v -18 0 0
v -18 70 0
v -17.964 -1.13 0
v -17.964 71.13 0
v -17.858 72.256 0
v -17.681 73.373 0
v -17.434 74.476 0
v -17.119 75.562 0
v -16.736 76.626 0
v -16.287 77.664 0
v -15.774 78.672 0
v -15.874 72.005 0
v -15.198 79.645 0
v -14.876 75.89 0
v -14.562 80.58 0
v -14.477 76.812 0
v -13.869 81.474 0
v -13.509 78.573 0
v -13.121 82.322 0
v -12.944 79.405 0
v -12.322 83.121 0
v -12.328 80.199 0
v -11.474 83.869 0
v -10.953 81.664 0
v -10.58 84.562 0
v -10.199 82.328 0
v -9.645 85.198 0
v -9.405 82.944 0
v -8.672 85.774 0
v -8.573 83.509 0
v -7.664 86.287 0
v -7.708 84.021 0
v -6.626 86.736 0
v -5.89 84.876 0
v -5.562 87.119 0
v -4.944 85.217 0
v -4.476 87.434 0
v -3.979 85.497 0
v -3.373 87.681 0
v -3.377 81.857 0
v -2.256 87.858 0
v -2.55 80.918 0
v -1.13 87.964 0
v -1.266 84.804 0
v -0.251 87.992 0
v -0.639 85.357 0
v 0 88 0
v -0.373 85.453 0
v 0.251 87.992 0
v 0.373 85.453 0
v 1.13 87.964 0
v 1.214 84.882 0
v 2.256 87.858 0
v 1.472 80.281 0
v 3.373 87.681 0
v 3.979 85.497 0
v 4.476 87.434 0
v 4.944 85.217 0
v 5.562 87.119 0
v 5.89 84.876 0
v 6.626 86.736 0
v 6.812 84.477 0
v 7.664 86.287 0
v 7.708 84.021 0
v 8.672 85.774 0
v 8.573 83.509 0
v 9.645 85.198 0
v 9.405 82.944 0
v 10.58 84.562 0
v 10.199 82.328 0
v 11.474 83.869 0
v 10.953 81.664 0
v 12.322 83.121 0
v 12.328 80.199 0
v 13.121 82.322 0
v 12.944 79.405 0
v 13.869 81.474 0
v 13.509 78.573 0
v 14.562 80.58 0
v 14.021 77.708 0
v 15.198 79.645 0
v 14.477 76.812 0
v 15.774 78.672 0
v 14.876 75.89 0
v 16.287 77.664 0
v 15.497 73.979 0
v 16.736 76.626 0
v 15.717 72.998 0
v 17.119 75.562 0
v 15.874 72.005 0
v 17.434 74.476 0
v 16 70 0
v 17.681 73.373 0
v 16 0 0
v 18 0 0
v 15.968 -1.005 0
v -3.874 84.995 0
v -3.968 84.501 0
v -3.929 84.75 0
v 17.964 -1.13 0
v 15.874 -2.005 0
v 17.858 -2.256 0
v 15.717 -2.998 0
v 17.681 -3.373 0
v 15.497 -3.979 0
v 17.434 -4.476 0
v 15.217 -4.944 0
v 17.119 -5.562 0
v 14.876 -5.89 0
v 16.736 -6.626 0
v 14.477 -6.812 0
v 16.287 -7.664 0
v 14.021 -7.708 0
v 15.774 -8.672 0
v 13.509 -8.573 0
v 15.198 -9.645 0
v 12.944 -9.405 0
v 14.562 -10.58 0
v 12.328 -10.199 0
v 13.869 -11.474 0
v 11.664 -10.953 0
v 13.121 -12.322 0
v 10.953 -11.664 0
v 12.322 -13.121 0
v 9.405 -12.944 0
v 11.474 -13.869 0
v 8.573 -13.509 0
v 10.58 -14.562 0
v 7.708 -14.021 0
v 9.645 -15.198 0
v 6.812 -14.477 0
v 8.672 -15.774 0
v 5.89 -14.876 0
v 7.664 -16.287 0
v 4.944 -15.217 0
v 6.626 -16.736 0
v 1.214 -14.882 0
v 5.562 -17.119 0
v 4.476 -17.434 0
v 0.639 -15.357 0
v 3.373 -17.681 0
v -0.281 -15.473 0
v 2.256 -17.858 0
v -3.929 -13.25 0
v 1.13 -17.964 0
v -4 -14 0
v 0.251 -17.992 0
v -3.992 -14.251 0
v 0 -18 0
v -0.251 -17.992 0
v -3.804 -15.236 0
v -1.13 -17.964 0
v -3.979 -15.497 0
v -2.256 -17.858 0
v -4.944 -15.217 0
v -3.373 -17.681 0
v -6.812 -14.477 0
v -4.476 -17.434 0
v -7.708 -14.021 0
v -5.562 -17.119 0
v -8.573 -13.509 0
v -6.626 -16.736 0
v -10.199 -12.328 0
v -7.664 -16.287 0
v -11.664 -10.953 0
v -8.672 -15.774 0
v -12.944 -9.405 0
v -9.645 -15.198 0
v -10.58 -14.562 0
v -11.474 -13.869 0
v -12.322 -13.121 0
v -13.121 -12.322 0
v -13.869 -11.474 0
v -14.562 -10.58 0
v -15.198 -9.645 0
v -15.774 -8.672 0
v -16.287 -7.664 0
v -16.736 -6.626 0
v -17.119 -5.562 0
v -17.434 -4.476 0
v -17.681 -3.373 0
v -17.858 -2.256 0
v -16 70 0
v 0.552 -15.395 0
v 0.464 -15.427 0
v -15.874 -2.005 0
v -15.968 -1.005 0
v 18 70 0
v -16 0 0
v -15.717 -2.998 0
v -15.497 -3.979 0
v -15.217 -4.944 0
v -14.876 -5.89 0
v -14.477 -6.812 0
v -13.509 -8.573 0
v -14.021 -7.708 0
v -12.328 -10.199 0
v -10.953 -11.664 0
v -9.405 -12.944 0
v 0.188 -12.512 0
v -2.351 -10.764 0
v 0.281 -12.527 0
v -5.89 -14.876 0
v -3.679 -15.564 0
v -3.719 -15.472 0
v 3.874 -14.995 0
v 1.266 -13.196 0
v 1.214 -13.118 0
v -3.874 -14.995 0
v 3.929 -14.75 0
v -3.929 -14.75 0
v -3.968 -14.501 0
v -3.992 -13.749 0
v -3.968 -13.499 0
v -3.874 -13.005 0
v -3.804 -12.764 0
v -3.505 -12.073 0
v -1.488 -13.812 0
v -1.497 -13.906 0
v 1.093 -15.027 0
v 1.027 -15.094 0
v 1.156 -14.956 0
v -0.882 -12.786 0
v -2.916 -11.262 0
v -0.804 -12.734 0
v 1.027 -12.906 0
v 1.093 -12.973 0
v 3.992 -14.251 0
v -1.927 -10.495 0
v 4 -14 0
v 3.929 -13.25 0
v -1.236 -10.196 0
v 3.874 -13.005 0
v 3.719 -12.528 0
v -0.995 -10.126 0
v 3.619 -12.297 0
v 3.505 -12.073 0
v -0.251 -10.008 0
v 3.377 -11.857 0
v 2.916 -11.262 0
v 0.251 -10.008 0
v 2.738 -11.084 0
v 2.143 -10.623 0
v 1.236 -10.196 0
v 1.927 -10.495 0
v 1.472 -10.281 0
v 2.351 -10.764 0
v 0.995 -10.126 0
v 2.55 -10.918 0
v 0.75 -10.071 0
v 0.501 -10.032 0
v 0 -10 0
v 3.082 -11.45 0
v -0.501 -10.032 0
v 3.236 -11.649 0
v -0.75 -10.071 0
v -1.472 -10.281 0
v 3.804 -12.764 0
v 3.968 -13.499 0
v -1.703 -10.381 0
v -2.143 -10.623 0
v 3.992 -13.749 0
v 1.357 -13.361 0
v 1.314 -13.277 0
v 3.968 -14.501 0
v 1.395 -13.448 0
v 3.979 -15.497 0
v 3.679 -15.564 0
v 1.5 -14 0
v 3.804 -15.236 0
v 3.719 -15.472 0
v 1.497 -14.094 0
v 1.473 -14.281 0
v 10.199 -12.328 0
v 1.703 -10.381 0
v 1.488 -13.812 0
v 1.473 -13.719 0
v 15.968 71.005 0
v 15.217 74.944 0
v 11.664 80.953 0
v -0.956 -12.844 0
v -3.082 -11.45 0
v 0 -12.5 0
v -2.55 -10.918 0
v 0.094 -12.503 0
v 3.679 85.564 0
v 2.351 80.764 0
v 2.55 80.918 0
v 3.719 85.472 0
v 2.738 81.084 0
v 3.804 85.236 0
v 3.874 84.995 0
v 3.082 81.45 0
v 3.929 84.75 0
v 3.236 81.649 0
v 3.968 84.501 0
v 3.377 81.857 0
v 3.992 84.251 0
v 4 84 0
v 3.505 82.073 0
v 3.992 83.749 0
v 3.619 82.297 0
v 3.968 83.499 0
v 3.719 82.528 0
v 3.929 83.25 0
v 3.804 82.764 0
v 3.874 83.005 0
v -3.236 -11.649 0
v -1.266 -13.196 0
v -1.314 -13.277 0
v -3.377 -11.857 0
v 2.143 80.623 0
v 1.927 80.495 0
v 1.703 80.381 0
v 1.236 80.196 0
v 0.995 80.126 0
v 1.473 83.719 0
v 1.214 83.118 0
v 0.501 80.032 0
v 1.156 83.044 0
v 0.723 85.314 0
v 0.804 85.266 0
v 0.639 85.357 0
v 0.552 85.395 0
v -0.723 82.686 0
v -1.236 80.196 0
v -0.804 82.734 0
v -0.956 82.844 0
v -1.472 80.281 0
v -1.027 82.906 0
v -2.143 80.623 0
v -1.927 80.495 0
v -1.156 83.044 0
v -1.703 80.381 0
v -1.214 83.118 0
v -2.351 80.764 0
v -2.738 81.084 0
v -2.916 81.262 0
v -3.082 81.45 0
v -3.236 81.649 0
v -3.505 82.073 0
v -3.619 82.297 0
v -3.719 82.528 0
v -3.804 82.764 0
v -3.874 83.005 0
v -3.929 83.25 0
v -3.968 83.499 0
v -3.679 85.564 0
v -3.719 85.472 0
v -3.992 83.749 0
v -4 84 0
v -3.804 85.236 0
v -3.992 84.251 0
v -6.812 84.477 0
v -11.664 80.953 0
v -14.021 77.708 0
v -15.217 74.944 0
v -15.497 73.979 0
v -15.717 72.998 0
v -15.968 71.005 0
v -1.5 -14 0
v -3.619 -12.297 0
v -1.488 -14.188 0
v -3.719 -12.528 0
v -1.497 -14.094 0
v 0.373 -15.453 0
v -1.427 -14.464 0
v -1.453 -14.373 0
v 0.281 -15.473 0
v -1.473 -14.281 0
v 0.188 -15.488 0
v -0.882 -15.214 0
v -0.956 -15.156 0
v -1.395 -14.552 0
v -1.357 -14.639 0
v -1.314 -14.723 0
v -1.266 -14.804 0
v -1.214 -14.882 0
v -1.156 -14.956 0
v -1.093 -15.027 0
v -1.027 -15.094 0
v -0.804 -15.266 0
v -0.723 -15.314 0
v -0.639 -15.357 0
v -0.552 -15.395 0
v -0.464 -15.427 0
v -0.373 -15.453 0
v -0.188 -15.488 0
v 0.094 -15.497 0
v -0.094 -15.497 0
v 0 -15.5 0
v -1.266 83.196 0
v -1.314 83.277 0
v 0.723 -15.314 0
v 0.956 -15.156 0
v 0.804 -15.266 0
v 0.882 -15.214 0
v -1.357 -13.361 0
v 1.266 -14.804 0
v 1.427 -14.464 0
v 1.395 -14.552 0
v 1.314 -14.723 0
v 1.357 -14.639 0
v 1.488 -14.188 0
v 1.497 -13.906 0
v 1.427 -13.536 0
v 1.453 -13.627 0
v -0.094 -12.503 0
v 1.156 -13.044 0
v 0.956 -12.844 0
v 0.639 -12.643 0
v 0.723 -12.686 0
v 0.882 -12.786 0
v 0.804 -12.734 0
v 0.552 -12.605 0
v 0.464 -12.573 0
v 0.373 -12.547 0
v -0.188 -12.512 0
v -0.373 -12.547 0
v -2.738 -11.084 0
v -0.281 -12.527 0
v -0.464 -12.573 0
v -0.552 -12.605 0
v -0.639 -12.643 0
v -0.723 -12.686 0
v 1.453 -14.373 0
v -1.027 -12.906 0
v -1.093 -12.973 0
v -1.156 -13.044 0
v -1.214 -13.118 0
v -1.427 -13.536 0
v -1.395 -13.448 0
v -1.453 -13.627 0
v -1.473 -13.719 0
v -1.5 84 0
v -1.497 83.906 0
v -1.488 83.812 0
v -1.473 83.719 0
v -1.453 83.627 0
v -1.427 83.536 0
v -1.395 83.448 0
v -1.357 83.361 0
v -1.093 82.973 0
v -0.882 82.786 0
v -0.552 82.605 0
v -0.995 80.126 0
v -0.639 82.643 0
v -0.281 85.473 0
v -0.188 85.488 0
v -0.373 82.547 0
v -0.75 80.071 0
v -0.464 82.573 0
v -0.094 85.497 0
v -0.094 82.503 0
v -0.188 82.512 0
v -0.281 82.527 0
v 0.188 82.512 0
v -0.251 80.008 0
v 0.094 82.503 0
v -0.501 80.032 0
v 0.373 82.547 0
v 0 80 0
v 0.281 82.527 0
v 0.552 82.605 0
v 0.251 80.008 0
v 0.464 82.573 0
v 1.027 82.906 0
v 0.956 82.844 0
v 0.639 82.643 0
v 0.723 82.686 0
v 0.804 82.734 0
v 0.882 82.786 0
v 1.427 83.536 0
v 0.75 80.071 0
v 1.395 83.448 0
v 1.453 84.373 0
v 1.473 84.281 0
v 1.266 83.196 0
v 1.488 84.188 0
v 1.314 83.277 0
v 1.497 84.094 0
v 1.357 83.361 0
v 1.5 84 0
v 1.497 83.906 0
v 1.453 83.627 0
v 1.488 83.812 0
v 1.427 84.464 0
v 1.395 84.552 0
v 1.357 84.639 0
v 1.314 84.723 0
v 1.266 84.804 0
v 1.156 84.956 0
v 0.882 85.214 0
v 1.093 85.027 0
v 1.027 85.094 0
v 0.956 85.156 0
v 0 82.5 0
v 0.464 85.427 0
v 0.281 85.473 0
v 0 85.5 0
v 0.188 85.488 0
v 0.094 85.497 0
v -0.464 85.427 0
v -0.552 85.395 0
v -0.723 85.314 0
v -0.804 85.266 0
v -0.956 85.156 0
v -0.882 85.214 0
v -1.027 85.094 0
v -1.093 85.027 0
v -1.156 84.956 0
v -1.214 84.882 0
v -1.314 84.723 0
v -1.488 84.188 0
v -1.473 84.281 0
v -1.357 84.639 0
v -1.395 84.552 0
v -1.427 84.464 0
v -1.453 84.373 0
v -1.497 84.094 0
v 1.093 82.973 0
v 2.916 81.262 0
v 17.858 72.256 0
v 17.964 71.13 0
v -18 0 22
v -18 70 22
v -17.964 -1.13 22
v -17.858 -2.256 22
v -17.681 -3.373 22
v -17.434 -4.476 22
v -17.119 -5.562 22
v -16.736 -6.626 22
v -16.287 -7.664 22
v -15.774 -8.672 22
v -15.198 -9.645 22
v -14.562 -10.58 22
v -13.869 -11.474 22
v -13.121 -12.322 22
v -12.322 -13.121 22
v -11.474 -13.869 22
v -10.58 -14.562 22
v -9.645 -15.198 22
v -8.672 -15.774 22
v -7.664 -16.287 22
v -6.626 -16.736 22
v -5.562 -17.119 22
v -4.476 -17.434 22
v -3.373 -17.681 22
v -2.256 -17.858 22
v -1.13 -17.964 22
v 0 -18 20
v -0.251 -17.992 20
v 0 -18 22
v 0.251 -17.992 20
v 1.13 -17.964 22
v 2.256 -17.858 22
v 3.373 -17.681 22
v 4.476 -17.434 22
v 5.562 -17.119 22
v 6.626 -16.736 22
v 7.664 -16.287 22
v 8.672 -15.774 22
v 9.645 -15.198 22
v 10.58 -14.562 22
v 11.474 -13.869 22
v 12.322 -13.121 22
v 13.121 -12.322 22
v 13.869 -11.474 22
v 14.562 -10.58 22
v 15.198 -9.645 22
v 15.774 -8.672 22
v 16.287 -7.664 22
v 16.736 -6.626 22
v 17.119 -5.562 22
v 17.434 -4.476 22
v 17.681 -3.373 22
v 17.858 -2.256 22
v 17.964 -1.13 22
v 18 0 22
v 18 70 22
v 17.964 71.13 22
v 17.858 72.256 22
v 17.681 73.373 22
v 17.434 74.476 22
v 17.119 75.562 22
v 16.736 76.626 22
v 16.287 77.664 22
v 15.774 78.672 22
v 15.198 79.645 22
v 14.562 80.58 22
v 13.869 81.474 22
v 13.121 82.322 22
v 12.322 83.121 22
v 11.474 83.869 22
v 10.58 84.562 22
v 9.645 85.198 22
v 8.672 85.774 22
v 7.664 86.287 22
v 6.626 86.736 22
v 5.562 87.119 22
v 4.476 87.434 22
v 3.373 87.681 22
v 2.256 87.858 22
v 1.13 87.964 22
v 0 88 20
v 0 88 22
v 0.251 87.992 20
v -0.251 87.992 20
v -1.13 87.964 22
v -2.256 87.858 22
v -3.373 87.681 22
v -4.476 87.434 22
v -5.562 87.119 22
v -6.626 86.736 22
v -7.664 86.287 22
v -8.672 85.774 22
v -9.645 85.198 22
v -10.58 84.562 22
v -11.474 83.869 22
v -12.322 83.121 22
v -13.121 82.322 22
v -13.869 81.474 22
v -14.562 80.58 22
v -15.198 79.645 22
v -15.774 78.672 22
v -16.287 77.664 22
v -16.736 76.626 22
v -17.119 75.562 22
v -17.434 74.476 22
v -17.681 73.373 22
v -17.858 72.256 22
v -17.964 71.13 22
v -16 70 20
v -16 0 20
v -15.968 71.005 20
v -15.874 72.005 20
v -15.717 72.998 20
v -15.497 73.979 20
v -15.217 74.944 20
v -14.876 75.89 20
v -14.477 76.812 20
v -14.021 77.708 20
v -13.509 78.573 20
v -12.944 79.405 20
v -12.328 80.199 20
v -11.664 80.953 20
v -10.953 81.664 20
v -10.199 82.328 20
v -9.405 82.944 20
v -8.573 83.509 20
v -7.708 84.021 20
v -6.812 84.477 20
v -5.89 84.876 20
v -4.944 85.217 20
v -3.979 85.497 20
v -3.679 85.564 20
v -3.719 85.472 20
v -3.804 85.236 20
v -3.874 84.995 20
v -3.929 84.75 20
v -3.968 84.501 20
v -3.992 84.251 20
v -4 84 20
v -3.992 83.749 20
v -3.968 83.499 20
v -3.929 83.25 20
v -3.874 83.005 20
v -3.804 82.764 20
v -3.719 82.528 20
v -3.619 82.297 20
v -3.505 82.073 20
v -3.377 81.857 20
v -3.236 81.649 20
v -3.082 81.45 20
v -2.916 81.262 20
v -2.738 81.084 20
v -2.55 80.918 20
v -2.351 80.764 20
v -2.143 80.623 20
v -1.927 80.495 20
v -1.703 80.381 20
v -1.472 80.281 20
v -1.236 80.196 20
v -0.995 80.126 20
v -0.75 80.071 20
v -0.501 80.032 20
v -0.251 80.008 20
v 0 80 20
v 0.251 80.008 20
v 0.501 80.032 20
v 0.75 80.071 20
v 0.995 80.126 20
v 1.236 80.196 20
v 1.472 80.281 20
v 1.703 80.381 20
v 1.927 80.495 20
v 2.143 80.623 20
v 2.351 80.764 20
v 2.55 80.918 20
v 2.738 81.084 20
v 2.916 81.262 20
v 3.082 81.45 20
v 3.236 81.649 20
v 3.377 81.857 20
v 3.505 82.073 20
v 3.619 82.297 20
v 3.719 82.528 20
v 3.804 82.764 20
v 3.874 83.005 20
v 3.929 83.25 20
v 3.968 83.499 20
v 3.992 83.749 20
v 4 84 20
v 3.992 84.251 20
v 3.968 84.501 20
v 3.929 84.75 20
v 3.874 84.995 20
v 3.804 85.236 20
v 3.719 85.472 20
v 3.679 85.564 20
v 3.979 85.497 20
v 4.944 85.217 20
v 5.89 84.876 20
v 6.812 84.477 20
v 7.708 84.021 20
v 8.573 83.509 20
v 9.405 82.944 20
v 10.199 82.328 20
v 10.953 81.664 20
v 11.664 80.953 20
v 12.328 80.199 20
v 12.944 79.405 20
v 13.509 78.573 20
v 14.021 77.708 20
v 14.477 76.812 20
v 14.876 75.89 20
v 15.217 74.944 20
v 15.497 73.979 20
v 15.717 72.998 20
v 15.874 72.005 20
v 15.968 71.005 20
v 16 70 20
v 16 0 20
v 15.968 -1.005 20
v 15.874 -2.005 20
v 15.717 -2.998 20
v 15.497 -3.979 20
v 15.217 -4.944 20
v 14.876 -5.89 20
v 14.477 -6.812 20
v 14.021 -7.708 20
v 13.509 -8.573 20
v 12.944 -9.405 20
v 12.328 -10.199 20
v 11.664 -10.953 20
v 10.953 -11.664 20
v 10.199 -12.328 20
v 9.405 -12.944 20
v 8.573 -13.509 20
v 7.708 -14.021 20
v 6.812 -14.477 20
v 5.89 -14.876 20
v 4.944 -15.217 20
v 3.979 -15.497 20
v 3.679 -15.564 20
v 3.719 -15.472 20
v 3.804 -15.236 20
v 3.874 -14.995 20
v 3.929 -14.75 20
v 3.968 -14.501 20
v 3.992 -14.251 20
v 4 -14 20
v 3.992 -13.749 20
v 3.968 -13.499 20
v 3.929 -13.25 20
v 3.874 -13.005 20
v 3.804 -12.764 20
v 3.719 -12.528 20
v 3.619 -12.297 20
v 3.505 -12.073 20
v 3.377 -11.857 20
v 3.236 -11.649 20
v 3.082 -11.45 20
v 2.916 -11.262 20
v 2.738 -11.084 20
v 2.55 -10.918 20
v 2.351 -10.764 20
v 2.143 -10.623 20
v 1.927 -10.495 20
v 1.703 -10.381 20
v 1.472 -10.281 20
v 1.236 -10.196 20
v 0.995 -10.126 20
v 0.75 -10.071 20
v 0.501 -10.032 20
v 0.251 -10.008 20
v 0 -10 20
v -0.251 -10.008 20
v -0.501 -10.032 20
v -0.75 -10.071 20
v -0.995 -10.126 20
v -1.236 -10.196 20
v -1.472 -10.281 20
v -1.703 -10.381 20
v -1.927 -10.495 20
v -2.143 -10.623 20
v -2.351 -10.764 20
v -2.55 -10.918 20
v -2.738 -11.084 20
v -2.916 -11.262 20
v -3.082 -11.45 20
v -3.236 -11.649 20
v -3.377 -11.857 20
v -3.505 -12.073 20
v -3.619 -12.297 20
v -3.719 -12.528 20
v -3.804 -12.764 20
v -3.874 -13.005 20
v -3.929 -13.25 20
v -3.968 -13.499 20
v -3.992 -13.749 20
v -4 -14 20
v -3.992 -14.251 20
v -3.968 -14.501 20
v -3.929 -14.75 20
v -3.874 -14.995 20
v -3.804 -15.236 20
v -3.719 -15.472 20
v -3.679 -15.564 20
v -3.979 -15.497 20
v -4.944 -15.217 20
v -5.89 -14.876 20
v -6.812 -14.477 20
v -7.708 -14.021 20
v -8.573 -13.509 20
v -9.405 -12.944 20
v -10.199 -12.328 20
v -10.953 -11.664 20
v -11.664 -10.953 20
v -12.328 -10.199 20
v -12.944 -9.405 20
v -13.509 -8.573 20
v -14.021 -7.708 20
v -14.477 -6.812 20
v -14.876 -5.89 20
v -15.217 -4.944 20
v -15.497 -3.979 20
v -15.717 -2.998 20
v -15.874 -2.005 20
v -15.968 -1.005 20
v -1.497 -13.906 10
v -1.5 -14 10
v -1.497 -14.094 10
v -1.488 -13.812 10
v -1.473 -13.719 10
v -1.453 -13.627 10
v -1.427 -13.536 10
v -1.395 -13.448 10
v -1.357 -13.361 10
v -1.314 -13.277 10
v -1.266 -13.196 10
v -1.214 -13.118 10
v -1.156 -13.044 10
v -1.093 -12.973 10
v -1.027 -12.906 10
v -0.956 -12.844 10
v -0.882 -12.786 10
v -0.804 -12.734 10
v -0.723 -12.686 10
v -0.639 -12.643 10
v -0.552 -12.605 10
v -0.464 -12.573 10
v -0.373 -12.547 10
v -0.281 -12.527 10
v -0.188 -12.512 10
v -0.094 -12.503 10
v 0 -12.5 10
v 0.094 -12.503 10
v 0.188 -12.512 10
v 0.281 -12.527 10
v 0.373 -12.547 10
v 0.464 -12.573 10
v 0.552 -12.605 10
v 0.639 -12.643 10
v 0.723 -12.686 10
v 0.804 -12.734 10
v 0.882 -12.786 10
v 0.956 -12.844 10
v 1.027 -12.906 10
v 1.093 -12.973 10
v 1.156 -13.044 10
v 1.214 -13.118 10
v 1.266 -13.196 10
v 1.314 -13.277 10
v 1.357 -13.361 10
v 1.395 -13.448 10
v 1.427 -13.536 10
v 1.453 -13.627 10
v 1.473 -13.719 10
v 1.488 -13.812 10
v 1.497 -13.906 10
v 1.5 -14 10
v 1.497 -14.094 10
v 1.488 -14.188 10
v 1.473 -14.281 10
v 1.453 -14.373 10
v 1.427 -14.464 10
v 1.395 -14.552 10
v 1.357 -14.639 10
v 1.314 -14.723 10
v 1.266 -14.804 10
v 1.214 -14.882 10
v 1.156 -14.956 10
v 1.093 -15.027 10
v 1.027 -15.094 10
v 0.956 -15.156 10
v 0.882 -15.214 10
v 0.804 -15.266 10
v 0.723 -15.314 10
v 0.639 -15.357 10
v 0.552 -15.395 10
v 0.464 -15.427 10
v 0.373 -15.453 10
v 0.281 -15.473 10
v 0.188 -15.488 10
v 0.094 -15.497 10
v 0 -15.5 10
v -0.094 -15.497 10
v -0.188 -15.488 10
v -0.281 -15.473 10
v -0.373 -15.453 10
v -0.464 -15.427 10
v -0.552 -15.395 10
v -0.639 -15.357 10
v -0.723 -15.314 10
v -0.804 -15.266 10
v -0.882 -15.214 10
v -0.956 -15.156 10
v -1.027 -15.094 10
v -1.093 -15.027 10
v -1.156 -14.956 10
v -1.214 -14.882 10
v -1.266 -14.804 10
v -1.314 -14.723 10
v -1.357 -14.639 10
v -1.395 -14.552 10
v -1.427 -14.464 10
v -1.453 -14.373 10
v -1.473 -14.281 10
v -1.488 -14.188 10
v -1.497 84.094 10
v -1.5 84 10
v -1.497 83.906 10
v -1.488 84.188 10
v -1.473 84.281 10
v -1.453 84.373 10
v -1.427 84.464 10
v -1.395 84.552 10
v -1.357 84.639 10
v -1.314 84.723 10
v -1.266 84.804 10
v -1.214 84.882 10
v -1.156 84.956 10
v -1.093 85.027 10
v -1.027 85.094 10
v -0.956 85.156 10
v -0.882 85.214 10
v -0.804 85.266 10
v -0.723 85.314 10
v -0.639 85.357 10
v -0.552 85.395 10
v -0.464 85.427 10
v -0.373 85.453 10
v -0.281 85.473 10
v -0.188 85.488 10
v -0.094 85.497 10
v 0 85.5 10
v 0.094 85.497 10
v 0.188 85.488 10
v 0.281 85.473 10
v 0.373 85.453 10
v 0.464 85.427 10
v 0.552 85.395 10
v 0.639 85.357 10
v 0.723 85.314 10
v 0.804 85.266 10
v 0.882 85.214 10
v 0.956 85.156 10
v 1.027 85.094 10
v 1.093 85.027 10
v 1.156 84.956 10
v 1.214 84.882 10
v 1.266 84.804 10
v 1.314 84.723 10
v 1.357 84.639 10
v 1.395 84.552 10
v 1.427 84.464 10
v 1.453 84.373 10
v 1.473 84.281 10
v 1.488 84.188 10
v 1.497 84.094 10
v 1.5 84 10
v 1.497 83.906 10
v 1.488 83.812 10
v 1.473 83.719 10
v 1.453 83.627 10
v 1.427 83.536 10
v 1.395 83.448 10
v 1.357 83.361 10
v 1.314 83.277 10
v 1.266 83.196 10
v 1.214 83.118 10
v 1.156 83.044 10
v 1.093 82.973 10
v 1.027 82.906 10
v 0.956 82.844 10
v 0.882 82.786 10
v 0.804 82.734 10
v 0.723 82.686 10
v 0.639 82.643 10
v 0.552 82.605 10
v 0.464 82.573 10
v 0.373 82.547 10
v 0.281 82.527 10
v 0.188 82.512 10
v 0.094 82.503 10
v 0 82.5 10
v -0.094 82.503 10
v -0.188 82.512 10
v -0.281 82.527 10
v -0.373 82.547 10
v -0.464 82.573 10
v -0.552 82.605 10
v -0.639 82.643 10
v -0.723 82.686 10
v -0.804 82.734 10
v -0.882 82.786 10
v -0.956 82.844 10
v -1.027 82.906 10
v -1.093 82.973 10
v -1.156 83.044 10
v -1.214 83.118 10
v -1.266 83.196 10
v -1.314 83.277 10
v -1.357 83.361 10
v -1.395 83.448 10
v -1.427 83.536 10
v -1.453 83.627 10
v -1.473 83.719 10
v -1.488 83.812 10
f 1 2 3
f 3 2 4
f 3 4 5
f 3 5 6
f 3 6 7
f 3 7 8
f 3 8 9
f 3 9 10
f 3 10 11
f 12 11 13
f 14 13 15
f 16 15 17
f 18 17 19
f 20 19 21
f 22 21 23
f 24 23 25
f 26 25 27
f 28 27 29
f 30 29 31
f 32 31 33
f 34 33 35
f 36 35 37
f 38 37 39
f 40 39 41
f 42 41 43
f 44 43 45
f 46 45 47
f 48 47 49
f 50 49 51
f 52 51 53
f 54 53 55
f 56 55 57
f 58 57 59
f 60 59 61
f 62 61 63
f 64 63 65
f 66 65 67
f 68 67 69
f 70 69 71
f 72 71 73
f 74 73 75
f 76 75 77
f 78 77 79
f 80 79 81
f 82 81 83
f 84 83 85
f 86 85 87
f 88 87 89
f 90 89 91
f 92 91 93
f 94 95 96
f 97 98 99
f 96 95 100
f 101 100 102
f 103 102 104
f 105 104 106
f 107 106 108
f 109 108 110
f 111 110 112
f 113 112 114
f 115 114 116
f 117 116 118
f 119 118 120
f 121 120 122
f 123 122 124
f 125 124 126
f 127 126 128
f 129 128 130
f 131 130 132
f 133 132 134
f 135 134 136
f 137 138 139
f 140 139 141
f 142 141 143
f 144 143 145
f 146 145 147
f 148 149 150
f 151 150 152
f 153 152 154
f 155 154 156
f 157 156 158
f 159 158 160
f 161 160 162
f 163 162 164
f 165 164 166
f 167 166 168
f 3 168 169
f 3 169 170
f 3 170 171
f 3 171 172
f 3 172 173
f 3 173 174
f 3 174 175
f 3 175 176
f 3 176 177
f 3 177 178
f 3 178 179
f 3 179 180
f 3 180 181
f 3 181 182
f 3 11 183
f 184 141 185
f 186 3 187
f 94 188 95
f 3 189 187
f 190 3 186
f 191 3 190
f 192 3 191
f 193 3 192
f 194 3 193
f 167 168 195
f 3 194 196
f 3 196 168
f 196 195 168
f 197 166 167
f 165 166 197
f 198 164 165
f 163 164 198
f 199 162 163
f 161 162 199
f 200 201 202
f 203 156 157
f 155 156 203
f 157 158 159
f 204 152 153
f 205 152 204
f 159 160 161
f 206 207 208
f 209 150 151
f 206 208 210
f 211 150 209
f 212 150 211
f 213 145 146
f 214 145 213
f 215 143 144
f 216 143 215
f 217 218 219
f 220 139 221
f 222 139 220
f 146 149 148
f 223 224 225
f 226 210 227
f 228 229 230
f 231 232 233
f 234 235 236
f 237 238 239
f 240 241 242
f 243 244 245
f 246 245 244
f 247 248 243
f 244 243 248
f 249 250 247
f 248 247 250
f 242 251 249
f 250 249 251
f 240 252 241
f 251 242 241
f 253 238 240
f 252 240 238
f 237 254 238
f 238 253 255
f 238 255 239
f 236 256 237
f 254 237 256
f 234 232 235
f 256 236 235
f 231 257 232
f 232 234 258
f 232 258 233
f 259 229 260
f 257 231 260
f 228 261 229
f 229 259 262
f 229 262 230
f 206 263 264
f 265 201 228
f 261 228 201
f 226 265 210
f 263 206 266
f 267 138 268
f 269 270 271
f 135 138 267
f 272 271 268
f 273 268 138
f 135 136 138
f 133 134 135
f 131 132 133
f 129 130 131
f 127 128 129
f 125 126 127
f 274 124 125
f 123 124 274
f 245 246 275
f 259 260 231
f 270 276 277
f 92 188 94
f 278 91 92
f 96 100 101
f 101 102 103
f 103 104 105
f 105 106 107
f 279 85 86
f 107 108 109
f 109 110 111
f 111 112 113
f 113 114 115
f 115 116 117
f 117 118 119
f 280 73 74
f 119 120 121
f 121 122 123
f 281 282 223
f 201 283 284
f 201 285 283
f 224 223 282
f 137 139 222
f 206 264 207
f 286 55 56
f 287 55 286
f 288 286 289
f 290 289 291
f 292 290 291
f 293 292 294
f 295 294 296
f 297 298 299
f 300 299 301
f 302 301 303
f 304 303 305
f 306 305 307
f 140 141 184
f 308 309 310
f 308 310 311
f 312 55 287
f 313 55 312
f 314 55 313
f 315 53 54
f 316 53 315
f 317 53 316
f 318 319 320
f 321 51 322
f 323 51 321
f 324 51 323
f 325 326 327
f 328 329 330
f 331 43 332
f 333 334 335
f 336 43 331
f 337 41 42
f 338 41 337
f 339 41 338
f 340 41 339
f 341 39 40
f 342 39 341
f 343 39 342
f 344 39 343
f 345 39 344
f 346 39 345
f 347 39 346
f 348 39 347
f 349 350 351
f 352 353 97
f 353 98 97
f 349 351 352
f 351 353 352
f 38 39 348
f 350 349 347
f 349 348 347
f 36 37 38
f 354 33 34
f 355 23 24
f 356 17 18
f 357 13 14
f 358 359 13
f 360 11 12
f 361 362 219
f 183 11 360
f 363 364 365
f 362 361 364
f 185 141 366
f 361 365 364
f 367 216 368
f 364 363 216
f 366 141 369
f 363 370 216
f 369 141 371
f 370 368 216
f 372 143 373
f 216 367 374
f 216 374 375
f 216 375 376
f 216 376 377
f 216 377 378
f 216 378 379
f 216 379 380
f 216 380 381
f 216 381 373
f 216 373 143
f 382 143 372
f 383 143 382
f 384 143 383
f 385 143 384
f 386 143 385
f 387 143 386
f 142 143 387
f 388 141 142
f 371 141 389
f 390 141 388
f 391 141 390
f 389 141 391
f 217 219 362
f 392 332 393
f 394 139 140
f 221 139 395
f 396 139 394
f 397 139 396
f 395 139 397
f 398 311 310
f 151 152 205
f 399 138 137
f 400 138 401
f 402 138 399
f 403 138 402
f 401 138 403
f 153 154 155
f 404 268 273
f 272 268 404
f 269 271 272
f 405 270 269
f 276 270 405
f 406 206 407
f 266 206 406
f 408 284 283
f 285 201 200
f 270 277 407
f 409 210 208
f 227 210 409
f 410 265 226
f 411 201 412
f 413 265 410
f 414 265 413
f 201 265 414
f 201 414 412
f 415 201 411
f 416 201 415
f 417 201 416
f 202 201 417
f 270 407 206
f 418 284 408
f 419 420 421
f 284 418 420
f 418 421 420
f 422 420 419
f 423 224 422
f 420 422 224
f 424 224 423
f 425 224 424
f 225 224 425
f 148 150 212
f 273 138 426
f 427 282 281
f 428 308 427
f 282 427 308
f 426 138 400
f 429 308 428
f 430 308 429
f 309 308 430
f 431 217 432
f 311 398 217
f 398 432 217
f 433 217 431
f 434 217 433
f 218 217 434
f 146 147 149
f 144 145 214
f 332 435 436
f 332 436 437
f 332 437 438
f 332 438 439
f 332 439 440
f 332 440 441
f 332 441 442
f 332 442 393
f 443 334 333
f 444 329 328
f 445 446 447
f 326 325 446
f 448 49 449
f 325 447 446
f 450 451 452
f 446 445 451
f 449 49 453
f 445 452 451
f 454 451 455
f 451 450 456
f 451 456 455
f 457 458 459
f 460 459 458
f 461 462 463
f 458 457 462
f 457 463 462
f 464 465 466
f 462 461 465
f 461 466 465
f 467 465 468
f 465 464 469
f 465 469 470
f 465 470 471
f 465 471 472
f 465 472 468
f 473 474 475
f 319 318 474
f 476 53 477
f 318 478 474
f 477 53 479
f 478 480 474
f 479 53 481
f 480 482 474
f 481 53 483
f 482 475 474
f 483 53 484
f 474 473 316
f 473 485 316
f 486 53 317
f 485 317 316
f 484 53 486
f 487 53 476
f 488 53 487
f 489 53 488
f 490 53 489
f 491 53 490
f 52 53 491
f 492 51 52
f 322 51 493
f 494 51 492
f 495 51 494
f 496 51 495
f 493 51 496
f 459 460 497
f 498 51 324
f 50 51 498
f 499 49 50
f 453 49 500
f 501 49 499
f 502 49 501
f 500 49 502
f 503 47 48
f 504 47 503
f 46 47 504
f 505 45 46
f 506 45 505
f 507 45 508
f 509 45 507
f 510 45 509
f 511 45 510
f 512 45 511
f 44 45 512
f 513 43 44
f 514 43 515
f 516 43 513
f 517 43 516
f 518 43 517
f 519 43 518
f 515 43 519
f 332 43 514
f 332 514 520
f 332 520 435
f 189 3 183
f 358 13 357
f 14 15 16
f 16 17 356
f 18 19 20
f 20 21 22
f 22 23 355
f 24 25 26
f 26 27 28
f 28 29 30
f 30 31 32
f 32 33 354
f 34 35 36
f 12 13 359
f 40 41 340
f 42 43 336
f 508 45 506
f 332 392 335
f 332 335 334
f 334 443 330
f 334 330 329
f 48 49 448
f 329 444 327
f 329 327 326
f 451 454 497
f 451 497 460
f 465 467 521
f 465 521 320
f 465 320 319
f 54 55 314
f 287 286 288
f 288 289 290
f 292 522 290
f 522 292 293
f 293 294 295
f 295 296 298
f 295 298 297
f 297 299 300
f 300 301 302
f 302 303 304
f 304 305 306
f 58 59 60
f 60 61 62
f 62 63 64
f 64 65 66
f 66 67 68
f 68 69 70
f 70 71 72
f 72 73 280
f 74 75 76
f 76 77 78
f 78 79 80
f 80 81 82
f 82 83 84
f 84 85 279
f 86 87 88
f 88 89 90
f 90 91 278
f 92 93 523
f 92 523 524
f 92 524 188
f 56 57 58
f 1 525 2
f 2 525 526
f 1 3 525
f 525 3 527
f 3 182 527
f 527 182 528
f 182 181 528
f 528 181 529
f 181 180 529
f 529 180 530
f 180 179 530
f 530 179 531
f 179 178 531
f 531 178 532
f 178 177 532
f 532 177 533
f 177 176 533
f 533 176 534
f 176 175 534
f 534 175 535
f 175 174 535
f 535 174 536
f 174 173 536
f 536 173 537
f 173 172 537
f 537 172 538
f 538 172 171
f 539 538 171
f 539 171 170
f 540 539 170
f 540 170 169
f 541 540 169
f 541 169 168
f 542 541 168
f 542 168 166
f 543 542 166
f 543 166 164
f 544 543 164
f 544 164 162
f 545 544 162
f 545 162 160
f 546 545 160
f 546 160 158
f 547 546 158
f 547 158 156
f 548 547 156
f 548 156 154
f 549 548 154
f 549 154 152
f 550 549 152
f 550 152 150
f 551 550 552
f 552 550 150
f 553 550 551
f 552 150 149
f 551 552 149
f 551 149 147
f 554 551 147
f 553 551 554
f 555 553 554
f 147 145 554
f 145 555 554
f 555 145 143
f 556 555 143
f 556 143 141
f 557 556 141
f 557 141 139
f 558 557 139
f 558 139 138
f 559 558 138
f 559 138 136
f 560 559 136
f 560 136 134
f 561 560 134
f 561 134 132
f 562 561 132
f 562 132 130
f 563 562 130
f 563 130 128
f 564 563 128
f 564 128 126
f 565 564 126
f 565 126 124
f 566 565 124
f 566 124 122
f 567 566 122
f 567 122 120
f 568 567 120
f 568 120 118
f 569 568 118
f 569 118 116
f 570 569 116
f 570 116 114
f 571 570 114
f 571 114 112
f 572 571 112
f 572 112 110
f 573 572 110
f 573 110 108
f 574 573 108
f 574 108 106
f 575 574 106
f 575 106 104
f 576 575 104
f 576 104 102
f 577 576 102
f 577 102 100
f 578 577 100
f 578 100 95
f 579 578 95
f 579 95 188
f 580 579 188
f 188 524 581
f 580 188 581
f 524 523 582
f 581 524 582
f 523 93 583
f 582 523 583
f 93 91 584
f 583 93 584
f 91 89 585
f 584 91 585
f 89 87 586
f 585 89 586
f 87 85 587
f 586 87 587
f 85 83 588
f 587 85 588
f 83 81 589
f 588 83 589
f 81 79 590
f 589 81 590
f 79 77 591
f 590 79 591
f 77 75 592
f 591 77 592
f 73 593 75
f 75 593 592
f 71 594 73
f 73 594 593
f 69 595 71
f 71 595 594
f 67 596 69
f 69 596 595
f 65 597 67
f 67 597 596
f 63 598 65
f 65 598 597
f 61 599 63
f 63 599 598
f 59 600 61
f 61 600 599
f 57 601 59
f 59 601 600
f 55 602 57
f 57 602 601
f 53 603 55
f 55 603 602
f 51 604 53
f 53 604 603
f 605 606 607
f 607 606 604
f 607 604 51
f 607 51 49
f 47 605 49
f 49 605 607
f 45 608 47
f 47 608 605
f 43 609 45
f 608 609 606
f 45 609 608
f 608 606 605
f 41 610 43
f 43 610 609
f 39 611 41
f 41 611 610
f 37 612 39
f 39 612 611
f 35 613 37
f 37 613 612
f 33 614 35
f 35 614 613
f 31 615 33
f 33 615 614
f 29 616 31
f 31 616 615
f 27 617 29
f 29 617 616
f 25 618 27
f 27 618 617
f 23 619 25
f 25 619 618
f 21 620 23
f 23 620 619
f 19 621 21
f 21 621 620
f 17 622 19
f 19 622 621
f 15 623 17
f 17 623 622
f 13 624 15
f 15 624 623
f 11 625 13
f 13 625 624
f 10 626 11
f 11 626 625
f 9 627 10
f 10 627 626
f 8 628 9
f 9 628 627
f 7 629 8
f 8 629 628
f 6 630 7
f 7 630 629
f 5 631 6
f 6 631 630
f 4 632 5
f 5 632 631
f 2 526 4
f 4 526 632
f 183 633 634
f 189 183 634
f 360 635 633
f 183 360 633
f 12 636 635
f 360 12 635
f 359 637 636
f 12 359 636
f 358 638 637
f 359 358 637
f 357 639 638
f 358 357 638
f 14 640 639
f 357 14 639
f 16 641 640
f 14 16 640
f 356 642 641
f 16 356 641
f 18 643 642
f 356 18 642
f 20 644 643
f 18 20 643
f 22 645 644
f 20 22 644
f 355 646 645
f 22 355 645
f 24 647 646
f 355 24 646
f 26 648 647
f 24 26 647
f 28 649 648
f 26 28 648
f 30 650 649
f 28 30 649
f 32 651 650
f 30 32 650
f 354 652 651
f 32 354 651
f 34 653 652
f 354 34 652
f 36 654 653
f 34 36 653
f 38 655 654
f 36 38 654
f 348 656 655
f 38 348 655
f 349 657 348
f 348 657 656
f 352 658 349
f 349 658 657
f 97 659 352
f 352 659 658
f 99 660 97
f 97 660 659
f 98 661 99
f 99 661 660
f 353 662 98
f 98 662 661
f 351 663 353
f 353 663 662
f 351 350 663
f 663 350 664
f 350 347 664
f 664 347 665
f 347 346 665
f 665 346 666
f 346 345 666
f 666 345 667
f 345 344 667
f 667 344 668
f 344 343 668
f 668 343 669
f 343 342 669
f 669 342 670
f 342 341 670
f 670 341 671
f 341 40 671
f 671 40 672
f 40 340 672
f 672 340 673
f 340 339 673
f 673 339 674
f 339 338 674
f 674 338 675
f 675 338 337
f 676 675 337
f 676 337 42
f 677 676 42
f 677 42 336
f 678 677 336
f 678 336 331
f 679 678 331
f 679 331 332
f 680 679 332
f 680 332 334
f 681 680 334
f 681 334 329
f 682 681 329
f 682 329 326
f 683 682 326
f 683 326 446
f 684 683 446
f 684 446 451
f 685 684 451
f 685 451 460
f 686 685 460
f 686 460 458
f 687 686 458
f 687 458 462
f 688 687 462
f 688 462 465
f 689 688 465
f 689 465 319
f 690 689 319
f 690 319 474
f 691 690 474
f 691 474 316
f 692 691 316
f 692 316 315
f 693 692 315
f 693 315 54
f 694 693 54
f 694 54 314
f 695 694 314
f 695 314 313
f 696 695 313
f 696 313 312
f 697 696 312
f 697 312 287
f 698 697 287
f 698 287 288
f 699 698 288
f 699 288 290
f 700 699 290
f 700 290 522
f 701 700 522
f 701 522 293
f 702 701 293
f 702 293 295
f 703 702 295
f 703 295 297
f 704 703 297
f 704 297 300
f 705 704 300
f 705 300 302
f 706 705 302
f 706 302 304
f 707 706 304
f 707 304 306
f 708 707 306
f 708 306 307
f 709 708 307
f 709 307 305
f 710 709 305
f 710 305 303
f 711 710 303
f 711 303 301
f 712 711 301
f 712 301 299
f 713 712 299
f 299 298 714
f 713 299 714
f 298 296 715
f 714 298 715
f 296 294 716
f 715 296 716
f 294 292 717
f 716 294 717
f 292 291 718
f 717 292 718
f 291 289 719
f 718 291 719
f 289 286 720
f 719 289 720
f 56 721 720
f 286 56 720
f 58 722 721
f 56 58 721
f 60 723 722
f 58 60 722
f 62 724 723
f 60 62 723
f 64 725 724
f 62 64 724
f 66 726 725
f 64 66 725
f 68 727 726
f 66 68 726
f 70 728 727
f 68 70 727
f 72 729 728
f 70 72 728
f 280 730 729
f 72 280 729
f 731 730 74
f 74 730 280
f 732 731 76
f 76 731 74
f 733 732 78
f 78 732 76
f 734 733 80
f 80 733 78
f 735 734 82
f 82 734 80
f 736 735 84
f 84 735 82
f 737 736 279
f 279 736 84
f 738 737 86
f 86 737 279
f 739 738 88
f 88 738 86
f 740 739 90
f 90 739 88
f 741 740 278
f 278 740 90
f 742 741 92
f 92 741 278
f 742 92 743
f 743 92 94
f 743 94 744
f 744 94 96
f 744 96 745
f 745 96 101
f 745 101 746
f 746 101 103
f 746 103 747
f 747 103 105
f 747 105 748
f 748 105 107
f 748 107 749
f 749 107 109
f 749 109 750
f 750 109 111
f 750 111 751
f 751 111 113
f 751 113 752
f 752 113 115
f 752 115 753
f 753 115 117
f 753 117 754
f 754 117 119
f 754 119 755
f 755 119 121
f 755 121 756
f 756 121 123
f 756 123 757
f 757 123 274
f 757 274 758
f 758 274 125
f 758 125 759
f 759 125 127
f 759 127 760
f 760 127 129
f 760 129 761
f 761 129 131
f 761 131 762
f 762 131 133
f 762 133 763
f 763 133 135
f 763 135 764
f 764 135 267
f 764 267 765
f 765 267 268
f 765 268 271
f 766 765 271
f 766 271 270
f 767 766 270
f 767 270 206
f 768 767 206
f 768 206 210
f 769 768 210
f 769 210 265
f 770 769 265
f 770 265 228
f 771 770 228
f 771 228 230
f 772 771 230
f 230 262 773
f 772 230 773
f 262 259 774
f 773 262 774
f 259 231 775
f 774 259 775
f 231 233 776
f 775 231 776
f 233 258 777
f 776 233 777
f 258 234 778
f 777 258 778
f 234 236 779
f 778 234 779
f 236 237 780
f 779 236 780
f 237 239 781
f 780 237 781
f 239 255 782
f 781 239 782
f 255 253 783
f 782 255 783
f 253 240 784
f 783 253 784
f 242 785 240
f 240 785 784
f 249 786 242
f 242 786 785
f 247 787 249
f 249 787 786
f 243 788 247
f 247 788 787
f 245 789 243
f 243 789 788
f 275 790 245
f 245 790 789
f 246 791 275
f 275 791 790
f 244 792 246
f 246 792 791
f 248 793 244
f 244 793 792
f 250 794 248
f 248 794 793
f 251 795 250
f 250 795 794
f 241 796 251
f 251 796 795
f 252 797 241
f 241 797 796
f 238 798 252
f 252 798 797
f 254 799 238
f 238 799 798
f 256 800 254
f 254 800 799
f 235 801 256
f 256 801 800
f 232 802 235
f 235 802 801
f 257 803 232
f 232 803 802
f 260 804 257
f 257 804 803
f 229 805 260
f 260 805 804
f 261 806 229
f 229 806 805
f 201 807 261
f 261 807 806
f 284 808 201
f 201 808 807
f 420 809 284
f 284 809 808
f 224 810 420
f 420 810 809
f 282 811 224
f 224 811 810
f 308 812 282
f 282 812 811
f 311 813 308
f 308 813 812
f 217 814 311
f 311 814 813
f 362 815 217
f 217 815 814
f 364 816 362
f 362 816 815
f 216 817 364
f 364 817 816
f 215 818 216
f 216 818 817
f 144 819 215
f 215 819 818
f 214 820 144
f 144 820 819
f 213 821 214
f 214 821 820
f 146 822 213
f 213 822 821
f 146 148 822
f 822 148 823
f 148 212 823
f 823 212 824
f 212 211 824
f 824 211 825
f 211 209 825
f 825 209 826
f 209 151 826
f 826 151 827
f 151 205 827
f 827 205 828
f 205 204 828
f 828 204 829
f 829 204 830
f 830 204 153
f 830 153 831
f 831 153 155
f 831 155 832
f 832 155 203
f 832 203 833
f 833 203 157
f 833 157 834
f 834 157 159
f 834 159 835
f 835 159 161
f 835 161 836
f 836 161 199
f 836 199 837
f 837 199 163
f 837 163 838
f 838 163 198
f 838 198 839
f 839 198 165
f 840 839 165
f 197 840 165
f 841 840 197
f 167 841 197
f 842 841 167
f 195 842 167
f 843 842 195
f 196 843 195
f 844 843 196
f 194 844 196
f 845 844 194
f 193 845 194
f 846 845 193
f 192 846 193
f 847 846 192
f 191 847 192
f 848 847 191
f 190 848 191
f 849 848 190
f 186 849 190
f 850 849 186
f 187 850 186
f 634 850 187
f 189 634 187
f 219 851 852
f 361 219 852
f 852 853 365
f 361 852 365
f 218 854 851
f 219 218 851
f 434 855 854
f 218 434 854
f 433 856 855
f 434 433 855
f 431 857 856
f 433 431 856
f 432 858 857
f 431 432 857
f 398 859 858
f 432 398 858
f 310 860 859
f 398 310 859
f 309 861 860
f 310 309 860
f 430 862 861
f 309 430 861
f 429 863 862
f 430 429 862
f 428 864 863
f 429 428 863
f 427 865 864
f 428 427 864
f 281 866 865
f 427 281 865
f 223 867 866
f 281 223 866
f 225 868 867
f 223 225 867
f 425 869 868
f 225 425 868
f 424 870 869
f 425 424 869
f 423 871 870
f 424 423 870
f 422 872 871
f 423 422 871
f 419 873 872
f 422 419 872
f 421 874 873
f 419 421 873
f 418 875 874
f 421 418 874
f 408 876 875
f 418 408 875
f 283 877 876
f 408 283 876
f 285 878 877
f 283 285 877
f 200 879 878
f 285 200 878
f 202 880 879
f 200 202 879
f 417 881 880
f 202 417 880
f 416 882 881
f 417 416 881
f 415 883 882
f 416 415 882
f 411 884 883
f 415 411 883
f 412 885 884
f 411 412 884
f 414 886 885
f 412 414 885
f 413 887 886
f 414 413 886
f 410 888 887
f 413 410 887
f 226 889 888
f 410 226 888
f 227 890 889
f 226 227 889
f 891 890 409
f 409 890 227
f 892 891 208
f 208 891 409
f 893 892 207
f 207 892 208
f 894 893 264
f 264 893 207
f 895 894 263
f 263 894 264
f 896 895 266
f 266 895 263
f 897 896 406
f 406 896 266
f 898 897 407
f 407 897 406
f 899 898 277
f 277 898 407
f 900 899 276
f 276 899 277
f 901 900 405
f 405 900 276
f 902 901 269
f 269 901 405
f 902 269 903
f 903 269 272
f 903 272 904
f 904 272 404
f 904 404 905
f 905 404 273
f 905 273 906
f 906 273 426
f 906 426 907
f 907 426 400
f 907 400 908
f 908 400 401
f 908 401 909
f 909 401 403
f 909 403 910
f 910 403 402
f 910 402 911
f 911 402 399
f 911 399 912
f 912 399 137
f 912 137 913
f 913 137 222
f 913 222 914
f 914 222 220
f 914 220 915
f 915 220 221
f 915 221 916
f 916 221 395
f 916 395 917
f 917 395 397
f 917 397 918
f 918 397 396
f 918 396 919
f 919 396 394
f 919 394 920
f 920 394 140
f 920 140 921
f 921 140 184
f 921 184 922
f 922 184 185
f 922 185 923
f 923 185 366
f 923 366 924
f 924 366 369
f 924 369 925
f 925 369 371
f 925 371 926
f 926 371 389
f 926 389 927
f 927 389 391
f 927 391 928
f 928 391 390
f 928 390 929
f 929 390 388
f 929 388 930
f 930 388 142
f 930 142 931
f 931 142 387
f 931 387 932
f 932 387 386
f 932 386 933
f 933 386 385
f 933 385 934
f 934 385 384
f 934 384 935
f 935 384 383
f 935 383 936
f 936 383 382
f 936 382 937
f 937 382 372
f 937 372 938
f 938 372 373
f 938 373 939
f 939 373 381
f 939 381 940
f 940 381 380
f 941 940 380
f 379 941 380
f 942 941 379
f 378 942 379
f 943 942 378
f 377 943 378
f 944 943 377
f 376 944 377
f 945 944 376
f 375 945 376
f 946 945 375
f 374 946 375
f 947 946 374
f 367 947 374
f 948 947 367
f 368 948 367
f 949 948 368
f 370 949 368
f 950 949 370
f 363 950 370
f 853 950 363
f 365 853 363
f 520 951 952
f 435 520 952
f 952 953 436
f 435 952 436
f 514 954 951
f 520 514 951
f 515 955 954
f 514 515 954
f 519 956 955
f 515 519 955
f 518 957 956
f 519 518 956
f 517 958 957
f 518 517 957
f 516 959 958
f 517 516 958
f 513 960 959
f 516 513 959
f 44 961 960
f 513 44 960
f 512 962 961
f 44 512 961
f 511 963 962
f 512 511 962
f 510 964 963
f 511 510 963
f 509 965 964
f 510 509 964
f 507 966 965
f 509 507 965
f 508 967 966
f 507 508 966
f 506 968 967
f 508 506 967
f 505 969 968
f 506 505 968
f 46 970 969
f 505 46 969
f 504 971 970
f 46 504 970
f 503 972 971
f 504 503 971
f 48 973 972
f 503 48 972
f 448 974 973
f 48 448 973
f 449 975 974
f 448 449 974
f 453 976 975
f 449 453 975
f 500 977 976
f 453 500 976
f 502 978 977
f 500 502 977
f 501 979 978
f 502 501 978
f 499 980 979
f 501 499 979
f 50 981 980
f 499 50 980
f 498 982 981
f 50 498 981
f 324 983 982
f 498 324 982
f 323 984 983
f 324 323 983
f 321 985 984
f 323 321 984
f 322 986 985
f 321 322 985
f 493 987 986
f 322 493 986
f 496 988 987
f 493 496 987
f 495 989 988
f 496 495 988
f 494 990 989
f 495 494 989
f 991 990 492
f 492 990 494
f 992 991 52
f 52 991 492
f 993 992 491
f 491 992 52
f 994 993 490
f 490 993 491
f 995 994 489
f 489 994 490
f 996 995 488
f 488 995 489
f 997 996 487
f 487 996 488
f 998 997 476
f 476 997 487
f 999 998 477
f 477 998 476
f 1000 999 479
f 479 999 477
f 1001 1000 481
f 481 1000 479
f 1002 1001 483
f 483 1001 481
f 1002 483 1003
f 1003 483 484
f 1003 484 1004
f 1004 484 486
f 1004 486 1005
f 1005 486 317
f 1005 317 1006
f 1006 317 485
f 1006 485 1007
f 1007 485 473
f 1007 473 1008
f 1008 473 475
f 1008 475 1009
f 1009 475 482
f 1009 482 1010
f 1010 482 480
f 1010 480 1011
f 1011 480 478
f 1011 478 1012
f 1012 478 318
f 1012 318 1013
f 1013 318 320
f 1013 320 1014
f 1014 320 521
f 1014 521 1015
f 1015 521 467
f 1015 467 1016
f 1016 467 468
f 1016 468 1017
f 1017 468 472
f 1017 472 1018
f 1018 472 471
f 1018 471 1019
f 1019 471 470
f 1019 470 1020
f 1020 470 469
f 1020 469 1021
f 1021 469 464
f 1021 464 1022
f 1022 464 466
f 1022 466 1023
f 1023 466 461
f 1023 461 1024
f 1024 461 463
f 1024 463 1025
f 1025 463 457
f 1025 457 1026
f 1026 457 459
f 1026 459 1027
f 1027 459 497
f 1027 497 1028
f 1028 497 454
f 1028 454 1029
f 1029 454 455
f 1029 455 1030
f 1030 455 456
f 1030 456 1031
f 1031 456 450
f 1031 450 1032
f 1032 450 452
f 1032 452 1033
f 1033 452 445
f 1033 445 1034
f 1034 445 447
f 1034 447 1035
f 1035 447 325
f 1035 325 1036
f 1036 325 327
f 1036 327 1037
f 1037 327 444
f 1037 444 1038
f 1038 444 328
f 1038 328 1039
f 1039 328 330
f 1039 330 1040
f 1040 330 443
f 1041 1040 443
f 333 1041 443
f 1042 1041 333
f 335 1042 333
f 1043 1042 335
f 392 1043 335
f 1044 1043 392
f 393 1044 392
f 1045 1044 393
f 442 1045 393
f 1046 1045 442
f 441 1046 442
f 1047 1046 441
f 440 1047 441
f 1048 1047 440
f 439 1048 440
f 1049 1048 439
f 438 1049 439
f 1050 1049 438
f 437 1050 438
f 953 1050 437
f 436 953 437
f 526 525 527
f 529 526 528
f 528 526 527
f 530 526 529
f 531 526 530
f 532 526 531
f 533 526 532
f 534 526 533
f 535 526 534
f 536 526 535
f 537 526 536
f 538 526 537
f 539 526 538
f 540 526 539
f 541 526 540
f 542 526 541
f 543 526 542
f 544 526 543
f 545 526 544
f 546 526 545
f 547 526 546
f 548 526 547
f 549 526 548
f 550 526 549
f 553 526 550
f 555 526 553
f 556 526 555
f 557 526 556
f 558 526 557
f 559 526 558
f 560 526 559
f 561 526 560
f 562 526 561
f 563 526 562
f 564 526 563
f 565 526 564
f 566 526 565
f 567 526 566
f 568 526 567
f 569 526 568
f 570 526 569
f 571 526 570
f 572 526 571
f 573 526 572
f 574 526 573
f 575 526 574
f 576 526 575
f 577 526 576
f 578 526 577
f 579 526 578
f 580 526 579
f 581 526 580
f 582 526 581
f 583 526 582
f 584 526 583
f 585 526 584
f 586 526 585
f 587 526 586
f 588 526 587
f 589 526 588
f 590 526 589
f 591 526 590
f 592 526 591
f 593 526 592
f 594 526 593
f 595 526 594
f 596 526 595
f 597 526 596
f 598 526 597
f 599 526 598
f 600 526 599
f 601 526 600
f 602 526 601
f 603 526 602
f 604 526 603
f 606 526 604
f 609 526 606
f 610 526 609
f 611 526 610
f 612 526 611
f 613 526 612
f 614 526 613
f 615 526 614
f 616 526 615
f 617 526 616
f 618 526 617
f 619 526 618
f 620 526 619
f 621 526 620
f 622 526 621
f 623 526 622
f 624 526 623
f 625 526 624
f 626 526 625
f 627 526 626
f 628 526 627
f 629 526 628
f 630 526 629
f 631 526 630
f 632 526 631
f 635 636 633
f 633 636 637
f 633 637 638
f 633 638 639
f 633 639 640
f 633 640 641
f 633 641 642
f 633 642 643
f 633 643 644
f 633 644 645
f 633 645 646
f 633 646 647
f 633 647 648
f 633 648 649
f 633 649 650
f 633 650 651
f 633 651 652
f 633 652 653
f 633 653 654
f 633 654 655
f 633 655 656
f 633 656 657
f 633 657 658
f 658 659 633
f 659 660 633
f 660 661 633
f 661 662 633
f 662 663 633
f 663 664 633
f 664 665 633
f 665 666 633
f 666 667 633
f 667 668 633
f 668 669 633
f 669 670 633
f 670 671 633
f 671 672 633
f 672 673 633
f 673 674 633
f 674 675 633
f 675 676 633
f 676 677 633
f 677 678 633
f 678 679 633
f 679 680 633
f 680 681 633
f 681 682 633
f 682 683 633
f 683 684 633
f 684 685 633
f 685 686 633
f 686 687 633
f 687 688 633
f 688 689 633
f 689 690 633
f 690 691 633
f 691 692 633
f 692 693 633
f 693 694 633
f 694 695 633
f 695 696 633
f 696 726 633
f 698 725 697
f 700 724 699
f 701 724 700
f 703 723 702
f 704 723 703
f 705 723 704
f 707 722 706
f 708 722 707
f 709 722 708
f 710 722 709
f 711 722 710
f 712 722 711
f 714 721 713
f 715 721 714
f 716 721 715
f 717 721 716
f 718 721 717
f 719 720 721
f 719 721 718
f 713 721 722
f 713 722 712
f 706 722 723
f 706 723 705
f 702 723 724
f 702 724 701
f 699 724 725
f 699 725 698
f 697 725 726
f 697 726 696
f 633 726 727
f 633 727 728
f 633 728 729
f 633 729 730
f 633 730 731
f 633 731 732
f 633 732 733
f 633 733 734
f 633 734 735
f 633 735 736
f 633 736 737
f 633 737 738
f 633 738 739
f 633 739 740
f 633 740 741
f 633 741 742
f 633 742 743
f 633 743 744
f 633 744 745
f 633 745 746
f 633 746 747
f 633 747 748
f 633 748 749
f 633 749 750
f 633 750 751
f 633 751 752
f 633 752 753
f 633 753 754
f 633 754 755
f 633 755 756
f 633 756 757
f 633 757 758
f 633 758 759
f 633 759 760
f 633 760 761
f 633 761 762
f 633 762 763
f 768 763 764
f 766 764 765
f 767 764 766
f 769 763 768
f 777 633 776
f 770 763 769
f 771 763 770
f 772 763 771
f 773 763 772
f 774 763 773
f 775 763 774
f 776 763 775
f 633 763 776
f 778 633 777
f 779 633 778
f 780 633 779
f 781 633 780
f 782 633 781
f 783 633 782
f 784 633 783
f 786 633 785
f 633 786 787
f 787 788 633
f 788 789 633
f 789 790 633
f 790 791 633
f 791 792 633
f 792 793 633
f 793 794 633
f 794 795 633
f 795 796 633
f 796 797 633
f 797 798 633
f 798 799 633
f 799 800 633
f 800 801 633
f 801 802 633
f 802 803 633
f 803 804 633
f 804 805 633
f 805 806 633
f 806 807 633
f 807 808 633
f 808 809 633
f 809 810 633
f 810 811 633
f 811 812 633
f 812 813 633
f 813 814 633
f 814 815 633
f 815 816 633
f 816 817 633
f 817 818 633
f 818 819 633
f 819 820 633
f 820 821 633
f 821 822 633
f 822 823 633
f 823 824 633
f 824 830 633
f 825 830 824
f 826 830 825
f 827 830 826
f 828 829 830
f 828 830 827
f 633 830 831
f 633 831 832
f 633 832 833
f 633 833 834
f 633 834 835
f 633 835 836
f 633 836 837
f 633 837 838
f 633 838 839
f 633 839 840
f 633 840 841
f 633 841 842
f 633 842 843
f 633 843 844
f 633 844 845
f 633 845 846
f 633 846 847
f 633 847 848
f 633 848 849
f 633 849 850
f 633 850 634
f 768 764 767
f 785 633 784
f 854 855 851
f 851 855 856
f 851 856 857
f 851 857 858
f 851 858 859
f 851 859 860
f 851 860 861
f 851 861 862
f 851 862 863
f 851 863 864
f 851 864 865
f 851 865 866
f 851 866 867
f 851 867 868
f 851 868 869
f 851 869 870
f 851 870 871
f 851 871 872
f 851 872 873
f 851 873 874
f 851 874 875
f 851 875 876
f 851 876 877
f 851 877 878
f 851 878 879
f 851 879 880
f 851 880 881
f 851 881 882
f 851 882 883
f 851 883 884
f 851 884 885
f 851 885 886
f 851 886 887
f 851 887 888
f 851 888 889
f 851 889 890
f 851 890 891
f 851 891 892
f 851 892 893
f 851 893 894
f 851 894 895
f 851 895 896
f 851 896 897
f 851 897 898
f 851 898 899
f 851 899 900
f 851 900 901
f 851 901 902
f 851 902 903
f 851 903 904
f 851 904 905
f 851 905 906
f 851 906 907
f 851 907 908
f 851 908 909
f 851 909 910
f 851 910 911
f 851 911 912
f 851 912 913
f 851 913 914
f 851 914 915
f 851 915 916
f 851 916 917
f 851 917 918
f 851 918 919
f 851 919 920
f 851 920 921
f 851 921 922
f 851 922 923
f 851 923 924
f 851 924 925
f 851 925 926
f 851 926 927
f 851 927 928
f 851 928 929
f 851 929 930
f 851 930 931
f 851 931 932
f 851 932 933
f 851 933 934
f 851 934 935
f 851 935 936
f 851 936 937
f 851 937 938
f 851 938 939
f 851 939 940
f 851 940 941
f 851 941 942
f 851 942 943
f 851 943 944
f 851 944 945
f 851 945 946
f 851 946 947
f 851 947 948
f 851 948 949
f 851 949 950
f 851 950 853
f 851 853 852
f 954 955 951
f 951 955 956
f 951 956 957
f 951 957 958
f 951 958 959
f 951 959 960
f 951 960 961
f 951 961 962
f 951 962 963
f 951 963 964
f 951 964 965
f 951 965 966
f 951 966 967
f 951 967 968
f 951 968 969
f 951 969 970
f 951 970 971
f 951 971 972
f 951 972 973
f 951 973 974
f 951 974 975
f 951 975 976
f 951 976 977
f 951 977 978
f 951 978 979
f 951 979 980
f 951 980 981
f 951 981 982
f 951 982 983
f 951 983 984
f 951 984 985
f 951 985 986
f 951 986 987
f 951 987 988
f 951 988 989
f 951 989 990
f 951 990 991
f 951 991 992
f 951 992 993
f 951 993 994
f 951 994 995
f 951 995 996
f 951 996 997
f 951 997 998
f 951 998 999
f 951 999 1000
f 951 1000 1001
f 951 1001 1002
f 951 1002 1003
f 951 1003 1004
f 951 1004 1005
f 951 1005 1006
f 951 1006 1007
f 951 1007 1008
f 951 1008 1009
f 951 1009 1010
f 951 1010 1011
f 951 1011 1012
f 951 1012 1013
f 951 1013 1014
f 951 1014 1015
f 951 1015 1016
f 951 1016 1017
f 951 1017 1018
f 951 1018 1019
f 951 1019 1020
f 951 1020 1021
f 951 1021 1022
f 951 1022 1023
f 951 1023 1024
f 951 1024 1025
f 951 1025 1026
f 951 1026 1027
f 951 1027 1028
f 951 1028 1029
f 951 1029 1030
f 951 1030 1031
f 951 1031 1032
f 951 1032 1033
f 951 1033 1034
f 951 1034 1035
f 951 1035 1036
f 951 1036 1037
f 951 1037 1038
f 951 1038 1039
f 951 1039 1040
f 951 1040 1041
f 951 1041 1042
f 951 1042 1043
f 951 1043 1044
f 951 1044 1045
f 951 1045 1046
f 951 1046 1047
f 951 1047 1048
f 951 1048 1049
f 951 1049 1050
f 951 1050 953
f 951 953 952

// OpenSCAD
radius = 18;
height = 22;
length = 70;
wall   =  2;

$fn=100;

module post() {
    difference() {
        cylinder(r=4, h=height-wall);
        cylinder(r=1.5, h=10);
    }
}

difference() {
    hull() {
        cylinder(r=radius, h=height);

        translate([0, length, 0])
        cylinder(r=radius, h=height);
    }

    hull() {
        translate(0, wall, 0)
        cylinder(r=radius-wall, h=height-wall);

        translate([0, length, 0])
        cylinder(r=radius-wall, h=height-wall);
    }
}

translate([0, -(radius+wall)/2-2*wall, 0])
post();

translate([0, length + ((radius+wall)/2+2*wall), 0])
post();
